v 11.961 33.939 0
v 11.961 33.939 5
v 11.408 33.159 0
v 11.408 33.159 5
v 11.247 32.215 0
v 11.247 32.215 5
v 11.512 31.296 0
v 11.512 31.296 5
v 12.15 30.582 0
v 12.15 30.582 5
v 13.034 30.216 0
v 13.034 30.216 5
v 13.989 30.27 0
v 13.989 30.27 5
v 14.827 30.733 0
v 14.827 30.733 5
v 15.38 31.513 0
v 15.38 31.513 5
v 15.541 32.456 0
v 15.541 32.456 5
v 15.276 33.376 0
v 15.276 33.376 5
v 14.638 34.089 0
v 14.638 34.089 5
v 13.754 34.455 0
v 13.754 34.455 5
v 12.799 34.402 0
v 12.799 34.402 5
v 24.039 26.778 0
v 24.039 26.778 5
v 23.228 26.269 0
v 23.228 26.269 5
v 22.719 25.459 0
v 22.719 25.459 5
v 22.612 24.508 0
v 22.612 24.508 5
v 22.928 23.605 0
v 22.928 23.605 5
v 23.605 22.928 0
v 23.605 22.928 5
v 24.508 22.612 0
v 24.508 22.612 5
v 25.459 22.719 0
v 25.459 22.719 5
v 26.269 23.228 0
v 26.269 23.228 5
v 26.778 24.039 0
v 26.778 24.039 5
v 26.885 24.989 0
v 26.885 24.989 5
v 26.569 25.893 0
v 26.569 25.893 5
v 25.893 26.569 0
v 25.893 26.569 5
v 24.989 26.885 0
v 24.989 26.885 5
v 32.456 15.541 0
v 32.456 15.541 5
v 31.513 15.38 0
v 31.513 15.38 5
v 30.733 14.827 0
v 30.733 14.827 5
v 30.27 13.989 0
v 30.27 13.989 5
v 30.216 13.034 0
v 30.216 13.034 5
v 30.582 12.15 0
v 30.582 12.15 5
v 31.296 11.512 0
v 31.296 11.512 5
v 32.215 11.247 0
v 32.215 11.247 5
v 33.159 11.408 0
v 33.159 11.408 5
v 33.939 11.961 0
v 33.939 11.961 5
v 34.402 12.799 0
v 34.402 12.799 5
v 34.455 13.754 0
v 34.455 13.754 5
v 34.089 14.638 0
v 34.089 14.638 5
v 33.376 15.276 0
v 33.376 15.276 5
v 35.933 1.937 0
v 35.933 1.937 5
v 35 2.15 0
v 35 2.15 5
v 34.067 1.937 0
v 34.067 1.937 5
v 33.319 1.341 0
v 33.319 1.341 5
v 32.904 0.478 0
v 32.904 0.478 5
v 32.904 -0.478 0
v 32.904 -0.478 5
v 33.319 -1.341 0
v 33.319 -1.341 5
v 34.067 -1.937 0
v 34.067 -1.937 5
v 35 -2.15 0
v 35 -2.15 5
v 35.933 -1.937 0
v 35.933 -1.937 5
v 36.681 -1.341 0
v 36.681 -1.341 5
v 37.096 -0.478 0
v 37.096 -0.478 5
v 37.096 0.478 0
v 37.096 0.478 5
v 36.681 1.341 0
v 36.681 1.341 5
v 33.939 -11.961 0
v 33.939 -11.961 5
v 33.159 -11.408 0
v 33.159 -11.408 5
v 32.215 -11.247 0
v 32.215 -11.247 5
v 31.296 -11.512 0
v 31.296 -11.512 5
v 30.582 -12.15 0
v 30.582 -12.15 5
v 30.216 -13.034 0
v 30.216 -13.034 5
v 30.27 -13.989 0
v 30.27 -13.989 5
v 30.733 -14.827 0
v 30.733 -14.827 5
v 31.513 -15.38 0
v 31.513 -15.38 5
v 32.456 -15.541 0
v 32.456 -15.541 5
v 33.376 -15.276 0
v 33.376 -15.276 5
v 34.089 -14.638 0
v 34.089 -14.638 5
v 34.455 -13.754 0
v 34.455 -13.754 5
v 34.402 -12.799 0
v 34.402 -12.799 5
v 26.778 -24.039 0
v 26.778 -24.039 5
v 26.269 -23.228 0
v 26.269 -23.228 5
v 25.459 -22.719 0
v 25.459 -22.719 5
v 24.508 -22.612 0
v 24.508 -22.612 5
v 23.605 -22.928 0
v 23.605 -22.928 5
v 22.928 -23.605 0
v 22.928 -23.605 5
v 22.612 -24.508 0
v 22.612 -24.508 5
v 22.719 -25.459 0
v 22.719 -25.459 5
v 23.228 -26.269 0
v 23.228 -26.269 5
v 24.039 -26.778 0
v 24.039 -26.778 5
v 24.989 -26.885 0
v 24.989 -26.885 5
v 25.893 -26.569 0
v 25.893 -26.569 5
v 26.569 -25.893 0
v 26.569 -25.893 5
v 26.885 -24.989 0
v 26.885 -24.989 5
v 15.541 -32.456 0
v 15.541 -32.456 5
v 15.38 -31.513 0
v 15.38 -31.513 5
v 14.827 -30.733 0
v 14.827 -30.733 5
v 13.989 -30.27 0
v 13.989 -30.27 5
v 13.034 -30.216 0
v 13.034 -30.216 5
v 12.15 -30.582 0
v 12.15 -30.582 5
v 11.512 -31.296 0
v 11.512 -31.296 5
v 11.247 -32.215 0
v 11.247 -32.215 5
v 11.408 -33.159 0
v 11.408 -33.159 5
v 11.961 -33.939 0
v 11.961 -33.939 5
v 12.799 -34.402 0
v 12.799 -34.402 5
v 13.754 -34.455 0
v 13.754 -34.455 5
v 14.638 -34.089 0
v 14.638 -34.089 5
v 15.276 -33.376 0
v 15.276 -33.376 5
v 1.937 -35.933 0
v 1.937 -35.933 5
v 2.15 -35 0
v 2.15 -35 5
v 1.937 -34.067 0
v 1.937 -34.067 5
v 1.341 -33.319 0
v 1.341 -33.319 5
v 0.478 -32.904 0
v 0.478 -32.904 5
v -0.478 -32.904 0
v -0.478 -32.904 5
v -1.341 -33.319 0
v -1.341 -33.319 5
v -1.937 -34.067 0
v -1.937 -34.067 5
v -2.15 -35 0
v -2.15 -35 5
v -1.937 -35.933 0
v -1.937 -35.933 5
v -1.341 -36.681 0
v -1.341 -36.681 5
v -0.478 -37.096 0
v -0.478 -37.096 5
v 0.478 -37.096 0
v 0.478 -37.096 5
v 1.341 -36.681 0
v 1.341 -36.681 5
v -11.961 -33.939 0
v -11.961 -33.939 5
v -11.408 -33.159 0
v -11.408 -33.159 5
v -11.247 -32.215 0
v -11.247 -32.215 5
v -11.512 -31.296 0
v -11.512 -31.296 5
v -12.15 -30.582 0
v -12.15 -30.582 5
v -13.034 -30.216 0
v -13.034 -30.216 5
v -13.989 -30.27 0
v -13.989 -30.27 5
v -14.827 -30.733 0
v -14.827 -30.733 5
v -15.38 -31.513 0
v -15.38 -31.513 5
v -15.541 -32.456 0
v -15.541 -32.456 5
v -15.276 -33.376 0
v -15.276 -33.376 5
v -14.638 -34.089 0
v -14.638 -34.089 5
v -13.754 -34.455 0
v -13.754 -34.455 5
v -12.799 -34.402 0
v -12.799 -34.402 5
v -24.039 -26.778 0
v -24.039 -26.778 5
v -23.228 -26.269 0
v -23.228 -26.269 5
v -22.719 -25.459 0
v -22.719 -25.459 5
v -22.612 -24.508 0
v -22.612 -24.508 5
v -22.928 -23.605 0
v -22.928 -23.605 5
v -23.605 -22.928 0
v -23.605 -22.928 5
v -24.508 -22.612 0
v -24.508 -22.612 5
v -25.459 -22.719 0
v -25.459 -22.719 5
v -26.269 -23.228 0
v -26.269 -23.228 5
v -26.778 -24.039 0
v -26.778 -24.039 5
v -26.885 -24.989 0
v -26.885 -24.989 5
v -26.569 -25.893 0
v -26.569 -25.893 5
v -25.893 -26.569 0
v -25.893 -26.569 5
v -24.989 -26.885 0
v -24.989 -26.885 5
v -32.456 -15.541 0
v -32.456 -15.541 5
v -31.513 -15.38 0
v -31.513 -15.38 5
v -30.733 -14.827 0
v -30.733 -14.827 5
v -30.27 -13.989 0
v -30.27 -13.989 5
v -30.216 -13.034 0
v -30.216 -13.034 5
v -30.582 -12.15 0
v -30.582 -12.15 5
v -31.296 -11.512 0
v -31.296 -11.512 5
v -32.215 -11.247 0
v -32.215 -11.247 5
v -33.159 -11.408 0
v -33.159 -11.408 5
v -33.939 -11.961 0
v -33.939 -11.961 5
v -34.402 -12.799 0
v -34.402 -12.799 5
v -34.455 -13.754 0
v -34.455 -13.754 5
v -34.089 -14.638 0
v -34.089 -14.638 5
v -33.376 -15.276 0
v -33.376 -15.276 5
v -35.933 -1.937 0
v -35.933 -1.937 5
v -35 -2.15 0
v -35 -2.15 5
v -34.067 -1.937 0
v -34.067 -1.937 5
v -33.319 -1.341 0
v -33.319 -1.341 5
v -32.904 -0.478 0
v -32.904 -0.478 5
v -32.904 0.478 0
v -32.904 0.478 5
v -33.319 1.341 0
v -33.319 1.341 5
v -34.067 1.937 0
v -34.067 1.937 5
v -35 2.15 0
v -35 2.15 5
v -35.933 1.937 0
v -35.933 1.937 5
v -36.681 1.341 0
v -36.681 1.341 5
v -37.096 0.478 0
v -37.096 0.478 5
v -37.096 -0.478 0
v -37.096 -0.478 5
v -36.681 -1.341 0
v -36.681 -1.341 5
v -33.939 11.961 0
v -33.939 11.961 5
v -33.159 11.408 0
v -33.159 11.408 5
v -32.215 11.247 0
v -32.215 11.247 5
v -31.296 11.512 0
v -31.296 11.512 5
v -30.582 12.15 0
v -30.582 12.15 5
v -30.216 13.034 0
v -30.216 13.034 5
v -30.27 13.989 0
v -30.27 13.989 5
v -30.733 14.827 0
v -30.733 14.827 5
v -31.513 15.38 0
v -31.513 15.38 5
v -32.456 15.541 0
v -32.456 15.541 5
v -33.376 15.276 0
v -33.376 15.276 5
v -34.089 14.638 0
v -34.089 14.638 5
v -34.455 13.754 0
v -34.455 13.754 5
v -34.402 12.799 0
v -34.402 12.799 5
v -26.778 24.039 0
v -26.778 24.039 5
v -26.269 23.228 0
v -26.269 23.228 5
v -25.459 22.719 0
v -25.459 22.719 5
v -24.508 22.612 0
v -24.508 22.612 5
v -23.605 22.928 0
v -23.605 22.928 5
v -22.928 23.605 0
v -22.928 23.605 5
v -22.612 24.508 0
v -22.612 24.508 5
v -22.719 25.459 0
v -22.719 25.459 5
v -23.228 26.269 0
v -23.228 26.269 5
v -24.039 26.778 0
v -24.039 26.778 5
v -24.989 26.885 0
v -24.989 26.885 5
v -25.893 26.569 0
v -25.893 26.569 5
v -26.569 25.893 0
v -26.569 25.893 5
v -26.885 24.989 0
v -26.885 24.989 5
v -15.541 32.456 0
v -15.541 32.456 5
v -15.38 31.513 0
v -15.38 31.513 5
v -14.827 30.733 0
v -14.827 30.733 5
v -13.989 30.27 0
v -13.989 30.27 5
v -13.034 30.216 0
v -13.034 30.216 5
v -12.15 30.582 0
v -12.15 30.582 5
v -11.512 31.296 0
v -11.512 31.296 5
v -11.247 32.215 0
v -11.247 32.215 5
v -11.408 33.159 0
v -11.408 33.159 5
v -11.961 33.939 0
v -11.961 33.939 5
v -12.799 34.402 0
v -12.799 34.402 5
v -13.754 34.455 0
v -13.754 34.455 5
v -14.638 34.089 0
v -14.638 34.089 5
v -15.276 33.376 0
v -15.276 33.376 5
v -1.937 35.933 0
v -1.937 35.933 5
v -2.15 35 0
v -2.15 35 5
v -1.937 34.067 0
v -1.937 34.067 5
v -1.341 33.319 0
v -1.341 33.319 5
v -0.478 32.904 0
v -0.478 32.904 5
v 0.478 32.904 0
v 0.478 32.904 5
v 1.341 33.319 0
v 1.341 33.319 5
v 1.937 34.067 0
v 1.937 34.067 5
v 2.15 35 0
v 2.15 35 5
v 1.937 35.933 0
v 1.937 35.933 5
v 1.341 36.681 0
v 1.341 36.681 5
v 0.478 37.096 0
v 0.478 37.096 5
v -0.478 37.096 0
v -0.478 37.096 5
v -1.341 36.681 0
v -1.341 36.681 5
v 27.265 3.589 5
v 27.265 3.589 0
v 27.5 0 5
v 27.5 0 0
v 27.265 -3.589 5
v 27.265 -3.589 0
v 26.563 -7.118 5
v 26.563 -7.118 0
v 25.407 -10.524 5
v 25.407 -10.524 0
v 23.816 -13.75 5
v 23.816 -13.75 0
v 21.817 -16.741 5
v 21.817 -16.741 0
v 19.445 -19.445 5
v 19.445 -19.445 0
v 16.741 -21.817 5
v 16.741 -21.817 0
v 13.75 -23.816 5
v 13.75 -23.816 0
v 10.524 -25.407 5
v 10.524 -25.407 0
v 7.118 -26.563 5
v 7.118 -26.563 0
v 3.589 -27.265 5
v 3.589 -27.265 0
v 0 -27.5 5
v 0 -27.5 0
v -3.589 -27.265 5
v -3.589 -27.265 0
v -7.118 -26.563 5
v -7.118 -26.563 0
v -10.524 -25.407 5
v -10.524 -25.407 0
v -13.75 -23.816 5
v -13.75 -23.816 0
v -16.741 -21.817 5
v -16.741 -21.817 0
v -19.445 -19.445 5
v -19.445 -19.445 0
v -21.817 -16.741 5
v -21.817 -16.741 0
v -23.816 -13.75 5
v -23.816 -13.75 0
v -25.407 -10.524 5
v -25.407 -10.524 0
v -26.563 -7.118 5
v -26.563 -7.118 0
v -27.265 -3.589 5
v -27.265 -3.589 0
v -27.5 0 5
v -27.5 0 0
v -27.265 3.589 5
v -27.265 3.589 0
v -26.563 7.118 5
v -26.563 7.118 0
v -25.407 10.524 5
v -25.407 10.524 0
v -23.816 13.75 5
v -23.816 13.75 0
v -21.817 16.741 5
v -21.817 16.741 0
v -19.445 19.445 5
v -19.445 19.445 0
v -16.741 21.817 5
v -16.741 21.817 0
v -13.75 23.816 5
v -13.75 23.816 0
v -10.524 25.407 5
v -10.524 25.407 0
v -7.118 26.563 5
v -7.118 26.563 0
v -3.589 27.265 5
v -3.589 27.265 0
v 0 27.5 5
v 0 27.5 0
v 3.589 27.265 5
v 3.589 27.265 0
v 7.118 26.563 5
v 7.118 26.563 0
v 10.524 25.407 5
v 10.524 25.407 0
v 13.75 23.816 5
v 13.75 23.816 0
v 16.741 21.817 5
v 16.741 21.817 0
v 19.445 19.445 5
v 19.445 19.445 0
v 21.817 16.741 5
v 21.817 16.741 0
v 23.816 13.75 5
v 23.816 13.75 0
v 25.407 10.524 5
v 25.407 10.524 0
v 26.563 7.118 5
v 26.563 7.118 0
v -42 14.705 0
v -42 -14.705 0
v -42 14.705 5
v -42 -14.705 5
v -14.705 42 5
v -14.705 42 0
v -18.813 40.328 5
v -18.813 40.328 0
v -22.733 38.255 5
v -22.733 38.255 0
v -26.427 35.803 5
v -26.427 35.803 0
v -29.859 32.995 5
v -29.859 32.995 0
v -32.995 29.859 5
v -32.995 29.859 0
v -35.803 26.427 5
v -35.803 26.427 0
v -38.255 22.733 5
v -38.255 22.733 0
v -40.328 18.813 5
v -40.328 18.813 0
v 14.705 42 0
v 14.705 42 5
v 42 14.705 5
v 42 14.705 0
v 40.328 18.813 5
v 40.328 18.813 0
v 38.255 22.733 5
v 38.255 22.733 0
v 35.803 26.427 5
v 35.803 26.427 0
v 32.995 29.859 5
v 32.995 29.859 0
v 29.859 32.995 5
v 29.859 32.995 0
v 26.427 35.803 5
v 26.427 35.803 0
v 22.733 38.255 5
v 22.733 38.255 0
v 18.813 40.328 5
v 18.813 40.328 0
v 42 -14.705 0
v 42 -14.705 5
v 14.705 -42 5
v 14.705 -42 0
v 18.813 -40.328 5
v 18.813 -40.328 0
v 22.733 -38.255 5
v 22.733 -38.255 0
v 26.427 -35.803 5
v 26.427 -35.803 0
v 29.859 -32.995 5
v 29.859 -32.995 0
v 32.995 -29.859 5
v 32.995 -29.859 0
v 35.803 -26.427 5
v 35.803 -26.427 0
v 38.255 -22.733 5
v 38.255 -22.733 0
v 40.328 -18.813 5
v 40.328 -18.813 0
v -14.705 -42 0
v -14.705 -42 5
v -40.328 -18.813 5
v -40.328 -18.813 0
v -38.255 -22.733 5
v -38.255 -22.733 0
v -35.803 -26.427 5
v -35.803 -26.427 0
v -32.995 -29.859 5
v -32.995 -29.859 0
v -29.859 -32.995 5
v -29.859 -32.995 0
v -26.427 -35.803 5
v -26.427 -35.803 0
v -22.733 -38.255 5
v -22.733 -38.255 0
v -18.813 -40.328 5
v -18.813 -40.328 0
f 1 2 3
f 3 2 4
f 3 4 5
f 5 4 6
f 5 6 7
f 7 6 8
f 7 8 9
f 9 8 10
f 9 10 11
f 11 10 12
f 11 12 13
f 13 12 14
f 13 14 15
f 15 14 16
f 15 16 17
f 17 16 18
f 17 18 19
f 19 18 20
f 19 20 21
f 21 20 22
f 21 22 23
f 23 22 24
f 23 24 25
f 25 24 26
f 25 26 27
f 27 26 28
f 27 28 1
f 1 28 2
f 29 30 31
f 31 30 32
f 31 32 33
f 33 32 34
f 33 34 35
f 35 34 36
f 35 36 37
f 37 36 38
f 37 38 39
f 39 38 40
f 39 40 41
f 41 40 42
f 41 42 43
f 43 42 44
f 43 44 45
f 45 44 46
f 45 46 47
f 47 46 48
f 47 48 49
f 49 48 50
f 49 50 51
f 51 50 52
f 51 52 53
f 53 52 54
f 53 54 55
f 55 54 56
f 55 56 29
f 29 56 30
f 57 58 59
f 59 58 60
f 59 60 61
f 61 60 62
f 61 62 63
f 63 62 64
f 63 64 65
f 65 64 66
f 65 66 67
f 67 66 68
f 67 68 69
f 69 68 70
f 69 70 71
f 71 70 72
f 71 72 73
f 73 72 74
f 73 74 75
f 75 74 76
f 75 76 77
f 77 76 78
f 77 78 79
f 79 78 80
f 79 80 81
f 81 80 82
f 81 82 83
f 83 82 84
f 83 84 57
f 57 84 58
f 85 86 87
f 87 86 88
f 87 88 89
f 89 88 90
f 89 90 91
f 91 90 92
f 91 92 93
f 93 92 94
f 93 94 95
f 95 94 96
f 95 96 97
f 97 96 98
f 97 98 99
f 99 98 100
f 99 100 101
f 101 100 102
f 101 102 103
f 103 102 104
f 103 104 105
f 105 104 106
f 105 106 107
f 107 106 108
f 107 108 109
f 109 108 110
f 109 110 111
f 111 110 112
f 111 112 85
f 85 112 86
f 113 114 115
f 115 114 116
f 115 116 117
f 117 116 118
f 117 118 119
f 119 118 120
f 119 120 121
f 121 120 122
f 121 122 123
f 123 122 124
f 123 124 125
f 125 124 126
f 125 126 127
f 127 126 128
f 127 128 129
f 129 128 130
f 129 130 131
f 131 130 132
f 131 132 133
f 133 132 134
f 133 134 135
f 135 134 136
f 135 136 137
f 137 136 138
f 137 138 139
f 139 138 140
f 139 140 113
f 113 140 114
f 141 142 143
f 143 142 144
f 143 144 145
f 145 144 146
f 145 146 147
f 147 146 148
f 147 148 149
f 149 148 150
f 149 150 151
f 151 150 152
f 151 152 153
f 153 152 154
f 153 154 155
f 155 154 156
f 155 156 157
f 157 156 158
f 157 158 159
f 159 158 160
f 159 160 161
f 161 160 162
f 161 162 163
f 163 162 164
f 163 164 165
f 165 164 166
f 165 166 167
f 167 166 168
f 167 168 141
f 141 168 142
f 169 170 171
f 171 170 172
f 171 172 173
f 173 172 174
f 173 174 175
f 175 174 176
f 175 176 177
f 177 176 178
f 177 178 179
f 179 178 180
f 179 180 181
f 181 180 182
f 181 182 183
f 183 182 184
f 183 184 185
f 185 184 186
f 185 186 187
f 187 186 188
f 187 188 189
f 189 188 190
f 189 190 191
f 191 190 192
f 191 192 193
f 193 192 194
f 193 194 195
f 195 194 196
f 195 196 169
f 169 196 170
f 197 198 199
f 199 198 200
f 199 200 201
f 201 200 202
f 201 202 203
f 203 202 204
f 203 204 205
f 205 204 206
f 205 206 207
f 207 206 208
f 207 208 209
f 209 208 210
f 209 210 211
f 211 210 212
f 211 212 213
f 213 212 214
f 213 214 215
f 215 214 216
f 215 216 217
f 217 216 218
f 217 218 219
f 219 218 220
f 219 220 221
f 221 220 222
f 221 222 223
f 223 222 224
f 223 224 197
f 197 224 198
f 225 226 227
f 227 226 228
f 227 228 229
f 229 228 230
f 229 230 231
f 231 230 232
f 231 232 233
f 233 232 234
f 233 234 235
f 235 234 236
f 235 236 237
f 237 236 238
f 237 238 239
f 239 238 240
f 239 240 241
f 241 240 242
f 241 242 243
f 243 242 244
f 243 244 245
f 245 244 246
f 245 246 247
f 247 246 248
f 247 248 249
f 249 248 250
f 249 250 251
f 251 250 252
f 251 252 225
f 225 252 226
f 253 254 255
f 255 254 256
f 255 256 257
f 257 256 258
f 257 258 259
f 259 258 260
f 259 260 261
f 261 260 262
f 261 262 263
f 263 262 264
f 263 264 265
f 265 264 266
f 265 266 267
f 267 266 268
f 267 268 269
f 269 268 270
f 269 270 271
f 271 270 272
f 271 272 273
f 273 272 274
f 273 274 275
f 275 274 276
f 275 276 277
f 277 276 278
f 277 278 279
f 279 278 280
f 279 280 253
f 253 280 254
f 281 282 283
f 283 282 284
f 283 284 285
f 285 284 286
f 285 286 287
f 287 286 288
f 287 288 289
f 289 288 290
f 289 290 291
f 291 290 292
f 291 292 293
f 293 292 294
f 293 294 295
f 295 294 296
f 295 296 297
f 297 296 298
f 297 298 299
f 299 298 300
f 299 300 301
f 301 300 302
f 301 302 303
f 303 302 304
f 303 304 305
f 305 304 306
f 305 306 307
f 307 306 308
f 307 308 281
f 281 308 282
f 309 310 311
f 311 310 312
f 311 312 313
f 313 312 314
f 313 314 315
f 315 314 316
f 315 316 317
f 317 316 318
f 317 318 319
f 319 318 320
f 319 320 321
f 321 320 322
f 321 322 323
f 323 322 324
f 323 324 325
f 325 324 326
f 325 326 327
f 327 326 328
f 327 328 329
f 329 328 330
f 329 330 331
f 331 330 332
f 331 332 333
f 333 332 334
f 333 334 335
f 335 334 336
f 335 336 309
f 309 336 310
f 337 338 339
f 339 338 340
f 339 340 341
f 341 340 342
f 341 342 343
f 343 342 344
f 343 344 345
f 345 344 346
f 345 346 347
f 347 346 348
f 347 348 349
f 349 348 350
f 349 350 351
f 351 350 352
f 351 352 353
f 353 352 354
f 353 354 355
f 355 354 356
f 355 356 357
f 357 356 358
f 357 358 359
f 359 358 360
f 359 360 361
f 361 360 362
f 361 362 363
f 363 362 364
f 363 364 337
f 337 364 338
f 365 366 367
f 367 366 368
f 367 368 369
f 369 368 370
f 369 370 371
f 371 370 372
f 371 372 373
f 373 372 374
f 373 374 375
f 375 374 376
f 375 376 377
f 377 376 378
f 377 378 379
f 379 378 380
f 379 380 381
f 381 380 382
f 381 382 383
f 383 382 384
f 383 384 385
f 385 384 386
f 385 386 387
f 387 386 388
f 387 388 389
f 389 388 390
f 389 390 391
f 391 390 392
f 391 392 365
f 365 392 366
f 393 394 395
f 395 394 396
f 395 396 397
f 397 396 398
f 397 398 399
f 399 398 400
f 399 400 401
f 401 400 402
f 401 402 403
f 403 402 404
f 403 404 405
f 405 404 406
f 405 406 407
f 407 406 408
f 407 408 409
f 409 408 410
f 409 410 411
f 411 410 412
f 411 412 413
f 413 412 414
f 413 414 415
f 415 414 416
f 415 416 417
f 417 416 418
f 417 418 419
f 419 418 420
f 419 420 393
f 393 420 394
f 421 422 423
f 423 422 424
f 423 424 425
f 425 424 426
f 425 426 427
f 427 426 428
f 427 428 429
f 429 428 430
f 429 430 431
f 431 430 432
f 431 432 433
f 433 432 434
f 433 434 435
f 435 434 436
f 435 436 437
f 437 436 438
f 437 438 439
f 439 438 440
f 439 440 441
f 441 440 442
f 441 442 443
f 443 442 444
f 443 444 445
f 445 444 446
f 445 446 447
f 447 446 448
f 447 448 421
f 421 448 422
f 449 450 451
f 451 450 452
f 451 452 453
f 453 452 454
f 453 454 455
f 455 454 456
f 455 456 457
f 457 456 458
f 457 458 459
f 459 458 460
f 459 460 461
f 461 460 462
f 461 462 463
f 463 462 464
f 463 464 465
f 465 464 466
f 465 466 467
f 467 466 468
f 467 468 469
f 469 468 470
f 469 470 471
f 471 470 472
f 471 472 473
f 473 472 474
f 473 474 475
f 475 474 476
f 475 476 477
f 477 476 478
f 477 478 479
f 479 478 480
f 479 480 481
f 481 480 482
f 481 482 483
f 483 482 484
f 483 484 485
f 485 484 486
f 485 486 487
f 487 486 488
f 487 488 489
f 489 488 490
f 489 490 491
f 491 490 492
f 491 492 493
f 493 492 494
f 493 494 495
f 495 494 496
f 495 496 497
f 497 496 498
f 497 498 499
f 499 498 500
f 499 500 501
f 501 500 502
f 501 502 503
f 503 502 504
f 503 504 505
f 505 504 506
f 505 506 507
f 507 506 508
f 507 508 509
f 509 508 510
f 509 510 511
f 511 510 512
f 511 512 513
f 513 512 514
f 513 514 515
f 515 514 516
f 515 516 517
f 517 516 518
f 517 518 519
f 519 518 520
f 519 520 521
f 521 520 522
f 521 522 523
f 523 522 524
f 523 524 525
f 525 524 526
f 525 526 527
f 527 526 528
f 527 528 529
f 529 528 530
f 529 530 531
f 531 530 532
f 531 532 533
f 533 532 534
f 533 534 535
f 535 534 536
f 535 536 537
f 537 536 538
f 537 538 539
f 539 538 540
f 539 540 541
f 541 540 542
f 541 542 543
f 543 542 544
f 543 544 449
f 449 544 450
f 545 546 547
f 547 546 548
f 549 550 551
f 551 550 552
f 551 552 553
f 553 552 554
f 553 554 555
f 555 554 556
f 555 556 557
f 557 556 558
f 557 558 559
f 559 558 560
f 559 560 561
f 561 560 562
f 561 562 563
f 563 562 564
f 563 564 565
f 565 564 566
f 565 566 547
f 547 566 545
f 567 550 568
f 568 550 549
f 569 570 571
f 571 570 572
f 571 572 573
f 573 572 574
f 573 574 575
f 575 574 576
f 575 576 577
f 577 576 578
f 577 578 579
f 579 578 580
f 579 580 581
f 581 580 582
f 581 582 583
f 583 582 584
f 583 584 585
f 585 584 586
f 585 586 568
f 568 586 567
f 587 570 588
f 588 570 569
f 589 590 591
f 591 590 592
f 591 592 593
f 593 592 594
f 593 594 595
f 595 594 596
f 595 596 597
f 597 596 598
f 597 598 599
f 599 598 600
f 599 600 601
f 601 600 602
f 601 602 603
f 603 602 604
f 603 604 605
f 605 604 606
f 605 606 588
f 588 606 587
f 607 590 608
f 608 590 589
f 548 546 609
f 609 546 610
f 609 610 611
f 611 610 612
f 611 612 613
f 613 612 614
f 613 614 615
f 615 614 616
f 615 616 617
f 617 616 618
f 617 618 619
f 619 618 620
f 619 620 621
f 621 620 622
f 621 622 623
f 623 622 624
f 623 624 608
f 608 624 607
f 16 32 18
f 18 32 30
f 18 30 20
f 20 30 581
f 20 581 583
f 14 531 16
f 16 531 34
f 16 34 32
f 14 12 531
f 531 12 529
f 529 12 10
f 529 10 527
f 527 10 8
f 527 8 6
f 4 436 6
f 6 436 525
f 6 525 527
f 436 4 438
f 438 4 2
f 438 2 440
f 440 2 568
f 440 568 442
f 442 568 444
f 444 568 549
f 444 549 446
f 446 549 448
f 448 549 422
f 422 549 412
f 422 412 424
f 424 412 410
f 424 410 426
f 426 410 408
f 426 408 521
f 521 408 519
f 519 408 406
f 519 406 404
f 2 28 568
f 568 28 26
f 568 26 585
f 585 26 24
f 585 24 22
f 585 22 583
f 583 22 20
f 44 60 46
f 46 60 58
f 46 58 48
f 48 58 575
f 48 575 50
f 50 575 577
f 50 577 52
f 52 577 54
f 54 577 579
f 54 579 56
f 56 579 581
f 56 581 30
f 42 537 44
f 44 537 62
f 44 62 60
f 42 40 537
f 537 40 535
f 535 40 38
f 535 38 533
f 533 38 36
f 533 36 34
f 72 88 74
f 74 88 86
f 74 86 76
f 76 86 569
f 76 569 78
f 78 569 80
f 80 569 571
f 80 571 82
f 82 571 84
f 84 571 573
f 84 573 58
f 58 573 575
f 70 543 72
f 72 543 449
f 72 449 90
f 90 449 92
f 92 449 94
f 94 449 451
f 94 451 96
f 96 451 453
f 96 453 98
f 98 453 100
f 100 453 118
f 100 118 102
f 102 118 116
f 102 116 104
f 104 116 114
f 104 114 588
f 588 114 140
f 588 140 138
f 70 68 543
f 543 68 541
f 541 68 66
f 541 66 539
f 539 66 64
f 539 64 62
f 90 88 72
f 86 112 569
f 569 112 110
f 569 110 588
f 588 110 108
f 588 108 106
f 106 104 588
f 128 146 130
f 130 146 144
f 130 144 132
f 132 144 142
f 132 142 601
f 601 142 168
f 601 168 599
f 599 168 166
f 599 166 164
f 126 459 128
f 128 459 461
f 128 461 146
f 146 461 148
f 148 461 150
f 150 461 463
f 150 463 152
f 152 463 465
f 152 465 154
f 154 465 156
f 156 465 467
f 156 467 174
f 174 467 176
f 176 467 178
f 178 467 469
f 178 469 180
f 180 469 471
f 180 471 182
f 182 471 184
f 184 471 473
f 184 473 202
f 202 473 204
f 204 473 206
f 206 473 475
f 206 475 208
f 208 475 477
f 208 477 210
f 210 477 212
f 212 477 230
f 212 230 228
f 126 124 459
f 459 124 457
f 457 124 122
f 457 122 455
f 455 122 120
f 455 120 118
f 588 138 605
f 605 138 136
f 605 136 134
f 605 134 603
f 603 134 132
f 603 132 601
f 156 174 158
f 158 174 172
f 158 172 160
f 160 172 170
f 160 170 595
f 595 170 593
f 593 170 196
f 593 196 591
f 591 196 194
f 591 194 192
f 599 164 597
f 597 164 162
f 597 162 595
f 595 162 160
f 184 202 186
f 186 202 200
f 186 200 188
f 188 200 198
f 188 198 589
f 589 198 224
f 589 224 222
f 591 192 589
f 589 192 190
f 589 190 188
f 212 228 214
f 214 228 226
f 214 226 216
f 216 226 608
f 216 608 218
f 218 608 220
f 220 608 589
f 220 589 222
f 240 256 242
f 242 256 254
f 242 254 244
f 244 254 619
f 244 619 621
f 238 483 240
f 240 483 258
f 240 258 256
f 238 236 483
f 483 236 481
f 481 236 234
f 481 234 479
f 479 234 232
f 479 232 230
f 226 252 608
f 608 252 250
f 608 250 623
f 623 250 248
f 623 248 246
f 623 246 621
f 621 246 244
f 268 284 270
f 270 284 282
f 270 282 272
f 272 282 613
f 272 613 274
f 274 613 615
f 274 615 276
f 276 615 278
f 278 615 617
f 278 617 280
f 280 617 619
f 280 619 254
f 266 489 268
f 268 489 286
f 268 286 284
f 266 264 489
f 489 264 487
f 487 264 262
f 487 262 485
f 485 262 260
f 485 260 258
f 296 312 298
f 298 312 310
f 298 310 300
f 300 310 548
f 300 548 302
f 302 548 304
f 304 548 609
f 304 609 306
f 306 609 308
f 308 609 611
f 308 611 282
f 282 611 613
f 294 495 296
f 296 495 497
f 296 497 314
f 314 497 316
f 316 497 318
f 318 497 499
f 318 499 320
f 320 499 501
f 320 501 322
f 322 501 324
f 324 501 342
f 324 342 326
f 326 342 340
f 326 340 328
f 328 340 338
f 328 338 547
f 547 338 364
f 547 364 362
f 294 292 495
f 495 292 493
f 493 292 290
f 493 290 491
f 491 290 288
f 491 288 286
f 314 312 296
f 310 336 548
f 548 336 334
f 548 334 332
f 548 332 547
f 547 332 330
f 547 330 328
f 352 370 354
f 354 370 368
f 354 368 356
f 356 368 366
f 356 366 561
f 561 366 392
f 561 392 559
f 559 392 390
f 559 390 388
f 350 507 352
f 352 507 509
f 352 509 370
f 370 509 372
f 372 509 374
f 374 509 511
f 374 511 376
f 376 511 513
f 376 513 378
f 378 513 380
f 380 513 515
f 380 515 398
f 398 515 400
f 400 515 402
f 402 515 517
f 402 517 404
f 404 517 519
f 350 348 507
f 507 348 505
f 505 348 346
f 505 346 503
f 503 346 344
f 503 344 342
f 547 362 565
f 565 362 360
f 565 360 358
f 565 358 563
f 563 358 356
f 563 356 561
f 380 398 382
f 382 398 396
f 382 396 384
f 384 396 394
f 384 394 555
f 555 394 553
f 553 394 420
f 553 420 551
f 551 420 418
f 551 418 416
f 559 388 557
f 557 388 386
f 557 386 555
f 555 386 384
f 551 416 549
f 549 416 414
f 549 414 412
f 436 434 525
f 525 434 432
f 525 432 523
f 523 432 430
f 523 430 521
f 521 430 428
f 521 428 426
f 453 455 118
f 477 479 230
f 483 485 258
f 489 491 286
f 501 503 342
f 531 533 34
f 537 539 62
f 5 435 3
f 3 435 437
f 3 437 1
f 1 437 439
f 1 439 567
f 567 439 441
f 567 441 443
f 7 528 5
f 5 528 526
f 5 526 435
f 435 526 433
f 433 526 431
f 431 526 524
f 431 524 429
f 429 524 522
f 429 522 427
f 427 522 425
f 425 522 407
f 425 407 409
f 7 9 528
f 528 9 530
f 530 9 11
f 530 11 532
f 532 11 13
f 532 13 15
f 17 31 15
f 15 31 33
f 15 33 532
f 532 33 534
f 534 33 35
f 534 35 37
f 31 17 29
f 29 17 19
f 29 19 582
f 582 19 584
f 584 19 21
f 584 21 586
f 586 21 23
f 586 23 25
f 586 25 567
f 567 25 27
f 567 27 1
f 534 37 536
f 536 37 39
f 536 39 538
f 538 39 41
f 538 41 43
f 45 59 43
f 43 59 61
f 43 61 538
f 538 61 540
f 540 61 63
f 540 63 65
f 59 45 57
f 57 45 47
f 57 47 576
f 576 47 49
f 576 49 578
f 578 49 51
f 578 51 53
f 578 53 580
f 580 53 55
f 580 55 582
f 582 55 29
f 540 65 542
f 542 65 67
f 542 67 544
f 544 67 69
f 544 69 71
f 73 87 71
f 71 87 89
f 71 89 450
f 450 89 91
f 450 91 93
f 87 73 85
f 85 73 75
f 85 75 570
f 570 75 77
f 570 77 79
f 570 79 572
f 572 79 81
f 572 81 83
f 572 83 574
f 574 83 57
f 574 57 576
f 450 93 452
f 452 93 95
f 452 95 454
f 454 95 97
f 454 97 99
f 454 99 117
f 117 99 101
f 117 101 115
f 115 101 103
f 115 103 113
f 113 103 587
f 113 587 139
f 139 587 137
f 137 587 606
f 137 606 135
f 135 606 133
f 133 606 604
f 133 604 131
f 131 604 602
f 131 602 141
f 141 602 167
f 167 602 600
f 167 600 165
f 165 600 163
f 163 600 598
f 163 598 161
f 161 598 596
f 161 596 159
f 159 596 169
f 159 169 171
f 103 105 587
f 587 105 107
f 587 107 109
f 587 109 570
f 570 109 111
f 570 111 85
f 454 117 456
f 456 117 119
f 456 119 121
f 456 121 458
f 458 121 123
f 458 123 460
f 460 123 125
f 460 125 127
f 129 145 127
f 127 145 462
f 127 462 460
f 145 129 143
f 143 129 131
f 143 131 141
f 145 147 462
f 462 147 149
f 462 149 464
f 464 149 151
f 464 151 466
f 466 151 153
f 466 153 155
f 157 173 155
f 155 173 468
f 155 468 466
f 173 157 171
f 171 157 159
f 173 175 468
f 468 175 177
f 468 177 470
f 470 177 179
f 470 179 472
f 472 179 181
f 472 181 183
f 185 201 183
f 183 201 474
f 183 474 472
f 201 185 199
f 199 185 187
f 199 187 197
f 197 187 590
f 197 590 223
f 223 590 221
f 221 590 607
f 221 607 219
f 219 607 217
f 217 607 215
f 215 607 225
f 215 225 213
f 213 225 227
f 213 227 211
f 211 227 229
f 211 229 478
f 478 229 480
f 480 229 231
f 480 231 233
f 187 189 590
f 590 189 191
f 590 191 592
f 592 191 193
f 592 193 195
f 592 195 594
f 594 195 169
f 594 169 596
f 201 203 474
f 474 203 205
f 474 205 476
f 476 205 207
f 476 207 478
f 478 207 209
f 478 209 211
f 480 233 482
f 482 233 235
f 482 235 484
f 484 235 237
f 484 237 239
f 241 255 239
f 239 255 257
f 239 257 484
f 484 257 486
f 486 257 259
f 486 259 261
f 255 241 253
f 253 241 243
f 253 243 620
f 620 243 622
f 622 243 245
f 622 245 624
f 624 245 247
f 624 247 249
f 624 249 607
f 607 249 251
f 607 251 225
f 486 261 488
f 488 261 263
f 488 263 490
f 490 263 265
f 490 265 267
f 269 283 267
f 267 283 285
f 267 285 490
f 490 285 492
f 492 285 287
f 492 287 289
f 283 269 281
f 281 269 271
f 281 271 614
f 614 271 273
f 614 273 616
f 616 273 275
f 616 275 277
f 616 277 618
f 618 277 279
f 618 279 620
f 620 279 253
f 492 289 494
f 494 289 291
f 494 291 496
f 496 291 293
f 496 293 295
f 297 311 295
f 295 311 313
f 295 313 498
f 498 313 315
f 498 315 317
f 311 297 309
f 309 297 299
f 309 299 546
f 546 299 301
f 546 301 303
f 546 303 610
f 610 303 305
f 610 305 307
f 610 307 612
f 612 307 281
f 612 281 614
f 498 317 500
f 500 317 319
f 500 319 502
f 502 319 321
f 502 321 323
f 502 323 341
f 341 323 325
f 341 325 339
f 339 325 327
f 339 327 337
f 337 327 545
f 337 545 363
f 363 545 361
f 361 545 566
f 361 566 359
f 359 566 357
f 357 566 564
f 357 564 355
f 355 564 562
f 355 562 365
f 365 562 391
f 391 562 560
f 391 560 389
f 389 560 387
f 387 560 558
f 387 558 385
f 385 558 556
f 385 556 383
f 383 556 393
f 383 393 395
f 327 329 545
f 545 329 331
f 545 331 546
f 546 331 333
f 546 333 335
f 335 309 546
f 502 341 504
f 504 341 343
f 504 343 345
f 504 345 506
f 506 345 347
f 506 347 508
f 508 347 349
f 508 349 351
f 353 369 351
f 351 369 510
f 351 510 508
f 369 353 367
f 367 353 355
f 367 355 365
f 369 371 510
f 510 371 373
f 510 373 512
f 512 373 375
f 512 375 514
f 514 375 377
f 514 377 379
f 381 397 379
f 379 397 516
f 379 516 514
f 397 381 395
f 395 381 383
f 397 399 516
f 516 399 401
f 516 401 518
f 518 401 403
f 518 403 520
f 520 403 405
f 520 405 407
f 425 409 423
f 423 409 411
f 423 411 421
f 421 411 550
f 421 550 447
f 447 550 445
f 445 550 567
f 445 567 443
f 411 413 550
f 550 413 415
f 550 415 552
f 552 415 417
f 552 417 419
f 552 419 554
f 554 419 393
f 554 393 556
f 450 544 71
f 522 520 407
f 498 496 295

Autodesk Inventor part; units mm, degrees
ref_plane "YZ Plane" through (0, 0, 0) normal (1, 0, 0) x (0, 1, 0)
ref_plane "XZ Plane" through (0, 0, 0) normal (0, 1, 0) x (-1, 0, 0)
ref_plane "XY Plane" through (0, 0, 0) normal (0, 0, 1) x (1, 0, 0)
sketch "스케치1" plane through (0, 0, 0) normal (0, 0, 1) x (1, 0, 0)
  circle A0 centre (0, 0) radius 44.5
  line L0 (-42, -42) -> (42, -42)
  line L1 (42, -42) -> (42, 42)
  line L2 (42, 42) -> (-42, 42)
  line L3 (-42, 42) -> (-42, -42)
  line L4 (-42, -42) -> (42, 42) construction
  line L5 (42, -42) -> (-42, 42) construction
  circle A1 centre (0, 0) radius 27.5
  point P0 (-42, 14.7054)
  point P1 (-42, -14.7054)
  point P2 (-14.7054, -42)
  point P3 (14.7054, -42)
  point P4 (42, -14.7054)
  point P5 (42, 14.7054)
  point P6 (14.7054, 42)
  point P7 (-14.7054, 42)
  dimension "d0" = 89
  dimension "d1" = 84
  dimension "d2" = 84
  dimension "d3" = 55
extrude "돌출1" add sketch "스케치1" along normal blind 5 contours L1 A0 L0 L3 L2
sketch "스케치4" plane through (0, 0, 5) normal (0, 0, 1) x (1, 0, 0)
  circle A0 centre (0, 35) radius 2 construction
  circle A1 centre (0, 0) radius 33 construction
  circle A2 centre (0, 35) radius 2.15
  dimension "d25" = 4
  dimension "d26" = 66
  dimension "d27" = 4.3
extrude "돌출5" cut sketch "스케치4" against normal blind 10
pattern_circular "원형 패턴3" count 16 over 360 about axis through (0, 0, 0) along (0, 0, 1) of "돌출5"
properties part number "감속기어1 - 하우징 커버"
